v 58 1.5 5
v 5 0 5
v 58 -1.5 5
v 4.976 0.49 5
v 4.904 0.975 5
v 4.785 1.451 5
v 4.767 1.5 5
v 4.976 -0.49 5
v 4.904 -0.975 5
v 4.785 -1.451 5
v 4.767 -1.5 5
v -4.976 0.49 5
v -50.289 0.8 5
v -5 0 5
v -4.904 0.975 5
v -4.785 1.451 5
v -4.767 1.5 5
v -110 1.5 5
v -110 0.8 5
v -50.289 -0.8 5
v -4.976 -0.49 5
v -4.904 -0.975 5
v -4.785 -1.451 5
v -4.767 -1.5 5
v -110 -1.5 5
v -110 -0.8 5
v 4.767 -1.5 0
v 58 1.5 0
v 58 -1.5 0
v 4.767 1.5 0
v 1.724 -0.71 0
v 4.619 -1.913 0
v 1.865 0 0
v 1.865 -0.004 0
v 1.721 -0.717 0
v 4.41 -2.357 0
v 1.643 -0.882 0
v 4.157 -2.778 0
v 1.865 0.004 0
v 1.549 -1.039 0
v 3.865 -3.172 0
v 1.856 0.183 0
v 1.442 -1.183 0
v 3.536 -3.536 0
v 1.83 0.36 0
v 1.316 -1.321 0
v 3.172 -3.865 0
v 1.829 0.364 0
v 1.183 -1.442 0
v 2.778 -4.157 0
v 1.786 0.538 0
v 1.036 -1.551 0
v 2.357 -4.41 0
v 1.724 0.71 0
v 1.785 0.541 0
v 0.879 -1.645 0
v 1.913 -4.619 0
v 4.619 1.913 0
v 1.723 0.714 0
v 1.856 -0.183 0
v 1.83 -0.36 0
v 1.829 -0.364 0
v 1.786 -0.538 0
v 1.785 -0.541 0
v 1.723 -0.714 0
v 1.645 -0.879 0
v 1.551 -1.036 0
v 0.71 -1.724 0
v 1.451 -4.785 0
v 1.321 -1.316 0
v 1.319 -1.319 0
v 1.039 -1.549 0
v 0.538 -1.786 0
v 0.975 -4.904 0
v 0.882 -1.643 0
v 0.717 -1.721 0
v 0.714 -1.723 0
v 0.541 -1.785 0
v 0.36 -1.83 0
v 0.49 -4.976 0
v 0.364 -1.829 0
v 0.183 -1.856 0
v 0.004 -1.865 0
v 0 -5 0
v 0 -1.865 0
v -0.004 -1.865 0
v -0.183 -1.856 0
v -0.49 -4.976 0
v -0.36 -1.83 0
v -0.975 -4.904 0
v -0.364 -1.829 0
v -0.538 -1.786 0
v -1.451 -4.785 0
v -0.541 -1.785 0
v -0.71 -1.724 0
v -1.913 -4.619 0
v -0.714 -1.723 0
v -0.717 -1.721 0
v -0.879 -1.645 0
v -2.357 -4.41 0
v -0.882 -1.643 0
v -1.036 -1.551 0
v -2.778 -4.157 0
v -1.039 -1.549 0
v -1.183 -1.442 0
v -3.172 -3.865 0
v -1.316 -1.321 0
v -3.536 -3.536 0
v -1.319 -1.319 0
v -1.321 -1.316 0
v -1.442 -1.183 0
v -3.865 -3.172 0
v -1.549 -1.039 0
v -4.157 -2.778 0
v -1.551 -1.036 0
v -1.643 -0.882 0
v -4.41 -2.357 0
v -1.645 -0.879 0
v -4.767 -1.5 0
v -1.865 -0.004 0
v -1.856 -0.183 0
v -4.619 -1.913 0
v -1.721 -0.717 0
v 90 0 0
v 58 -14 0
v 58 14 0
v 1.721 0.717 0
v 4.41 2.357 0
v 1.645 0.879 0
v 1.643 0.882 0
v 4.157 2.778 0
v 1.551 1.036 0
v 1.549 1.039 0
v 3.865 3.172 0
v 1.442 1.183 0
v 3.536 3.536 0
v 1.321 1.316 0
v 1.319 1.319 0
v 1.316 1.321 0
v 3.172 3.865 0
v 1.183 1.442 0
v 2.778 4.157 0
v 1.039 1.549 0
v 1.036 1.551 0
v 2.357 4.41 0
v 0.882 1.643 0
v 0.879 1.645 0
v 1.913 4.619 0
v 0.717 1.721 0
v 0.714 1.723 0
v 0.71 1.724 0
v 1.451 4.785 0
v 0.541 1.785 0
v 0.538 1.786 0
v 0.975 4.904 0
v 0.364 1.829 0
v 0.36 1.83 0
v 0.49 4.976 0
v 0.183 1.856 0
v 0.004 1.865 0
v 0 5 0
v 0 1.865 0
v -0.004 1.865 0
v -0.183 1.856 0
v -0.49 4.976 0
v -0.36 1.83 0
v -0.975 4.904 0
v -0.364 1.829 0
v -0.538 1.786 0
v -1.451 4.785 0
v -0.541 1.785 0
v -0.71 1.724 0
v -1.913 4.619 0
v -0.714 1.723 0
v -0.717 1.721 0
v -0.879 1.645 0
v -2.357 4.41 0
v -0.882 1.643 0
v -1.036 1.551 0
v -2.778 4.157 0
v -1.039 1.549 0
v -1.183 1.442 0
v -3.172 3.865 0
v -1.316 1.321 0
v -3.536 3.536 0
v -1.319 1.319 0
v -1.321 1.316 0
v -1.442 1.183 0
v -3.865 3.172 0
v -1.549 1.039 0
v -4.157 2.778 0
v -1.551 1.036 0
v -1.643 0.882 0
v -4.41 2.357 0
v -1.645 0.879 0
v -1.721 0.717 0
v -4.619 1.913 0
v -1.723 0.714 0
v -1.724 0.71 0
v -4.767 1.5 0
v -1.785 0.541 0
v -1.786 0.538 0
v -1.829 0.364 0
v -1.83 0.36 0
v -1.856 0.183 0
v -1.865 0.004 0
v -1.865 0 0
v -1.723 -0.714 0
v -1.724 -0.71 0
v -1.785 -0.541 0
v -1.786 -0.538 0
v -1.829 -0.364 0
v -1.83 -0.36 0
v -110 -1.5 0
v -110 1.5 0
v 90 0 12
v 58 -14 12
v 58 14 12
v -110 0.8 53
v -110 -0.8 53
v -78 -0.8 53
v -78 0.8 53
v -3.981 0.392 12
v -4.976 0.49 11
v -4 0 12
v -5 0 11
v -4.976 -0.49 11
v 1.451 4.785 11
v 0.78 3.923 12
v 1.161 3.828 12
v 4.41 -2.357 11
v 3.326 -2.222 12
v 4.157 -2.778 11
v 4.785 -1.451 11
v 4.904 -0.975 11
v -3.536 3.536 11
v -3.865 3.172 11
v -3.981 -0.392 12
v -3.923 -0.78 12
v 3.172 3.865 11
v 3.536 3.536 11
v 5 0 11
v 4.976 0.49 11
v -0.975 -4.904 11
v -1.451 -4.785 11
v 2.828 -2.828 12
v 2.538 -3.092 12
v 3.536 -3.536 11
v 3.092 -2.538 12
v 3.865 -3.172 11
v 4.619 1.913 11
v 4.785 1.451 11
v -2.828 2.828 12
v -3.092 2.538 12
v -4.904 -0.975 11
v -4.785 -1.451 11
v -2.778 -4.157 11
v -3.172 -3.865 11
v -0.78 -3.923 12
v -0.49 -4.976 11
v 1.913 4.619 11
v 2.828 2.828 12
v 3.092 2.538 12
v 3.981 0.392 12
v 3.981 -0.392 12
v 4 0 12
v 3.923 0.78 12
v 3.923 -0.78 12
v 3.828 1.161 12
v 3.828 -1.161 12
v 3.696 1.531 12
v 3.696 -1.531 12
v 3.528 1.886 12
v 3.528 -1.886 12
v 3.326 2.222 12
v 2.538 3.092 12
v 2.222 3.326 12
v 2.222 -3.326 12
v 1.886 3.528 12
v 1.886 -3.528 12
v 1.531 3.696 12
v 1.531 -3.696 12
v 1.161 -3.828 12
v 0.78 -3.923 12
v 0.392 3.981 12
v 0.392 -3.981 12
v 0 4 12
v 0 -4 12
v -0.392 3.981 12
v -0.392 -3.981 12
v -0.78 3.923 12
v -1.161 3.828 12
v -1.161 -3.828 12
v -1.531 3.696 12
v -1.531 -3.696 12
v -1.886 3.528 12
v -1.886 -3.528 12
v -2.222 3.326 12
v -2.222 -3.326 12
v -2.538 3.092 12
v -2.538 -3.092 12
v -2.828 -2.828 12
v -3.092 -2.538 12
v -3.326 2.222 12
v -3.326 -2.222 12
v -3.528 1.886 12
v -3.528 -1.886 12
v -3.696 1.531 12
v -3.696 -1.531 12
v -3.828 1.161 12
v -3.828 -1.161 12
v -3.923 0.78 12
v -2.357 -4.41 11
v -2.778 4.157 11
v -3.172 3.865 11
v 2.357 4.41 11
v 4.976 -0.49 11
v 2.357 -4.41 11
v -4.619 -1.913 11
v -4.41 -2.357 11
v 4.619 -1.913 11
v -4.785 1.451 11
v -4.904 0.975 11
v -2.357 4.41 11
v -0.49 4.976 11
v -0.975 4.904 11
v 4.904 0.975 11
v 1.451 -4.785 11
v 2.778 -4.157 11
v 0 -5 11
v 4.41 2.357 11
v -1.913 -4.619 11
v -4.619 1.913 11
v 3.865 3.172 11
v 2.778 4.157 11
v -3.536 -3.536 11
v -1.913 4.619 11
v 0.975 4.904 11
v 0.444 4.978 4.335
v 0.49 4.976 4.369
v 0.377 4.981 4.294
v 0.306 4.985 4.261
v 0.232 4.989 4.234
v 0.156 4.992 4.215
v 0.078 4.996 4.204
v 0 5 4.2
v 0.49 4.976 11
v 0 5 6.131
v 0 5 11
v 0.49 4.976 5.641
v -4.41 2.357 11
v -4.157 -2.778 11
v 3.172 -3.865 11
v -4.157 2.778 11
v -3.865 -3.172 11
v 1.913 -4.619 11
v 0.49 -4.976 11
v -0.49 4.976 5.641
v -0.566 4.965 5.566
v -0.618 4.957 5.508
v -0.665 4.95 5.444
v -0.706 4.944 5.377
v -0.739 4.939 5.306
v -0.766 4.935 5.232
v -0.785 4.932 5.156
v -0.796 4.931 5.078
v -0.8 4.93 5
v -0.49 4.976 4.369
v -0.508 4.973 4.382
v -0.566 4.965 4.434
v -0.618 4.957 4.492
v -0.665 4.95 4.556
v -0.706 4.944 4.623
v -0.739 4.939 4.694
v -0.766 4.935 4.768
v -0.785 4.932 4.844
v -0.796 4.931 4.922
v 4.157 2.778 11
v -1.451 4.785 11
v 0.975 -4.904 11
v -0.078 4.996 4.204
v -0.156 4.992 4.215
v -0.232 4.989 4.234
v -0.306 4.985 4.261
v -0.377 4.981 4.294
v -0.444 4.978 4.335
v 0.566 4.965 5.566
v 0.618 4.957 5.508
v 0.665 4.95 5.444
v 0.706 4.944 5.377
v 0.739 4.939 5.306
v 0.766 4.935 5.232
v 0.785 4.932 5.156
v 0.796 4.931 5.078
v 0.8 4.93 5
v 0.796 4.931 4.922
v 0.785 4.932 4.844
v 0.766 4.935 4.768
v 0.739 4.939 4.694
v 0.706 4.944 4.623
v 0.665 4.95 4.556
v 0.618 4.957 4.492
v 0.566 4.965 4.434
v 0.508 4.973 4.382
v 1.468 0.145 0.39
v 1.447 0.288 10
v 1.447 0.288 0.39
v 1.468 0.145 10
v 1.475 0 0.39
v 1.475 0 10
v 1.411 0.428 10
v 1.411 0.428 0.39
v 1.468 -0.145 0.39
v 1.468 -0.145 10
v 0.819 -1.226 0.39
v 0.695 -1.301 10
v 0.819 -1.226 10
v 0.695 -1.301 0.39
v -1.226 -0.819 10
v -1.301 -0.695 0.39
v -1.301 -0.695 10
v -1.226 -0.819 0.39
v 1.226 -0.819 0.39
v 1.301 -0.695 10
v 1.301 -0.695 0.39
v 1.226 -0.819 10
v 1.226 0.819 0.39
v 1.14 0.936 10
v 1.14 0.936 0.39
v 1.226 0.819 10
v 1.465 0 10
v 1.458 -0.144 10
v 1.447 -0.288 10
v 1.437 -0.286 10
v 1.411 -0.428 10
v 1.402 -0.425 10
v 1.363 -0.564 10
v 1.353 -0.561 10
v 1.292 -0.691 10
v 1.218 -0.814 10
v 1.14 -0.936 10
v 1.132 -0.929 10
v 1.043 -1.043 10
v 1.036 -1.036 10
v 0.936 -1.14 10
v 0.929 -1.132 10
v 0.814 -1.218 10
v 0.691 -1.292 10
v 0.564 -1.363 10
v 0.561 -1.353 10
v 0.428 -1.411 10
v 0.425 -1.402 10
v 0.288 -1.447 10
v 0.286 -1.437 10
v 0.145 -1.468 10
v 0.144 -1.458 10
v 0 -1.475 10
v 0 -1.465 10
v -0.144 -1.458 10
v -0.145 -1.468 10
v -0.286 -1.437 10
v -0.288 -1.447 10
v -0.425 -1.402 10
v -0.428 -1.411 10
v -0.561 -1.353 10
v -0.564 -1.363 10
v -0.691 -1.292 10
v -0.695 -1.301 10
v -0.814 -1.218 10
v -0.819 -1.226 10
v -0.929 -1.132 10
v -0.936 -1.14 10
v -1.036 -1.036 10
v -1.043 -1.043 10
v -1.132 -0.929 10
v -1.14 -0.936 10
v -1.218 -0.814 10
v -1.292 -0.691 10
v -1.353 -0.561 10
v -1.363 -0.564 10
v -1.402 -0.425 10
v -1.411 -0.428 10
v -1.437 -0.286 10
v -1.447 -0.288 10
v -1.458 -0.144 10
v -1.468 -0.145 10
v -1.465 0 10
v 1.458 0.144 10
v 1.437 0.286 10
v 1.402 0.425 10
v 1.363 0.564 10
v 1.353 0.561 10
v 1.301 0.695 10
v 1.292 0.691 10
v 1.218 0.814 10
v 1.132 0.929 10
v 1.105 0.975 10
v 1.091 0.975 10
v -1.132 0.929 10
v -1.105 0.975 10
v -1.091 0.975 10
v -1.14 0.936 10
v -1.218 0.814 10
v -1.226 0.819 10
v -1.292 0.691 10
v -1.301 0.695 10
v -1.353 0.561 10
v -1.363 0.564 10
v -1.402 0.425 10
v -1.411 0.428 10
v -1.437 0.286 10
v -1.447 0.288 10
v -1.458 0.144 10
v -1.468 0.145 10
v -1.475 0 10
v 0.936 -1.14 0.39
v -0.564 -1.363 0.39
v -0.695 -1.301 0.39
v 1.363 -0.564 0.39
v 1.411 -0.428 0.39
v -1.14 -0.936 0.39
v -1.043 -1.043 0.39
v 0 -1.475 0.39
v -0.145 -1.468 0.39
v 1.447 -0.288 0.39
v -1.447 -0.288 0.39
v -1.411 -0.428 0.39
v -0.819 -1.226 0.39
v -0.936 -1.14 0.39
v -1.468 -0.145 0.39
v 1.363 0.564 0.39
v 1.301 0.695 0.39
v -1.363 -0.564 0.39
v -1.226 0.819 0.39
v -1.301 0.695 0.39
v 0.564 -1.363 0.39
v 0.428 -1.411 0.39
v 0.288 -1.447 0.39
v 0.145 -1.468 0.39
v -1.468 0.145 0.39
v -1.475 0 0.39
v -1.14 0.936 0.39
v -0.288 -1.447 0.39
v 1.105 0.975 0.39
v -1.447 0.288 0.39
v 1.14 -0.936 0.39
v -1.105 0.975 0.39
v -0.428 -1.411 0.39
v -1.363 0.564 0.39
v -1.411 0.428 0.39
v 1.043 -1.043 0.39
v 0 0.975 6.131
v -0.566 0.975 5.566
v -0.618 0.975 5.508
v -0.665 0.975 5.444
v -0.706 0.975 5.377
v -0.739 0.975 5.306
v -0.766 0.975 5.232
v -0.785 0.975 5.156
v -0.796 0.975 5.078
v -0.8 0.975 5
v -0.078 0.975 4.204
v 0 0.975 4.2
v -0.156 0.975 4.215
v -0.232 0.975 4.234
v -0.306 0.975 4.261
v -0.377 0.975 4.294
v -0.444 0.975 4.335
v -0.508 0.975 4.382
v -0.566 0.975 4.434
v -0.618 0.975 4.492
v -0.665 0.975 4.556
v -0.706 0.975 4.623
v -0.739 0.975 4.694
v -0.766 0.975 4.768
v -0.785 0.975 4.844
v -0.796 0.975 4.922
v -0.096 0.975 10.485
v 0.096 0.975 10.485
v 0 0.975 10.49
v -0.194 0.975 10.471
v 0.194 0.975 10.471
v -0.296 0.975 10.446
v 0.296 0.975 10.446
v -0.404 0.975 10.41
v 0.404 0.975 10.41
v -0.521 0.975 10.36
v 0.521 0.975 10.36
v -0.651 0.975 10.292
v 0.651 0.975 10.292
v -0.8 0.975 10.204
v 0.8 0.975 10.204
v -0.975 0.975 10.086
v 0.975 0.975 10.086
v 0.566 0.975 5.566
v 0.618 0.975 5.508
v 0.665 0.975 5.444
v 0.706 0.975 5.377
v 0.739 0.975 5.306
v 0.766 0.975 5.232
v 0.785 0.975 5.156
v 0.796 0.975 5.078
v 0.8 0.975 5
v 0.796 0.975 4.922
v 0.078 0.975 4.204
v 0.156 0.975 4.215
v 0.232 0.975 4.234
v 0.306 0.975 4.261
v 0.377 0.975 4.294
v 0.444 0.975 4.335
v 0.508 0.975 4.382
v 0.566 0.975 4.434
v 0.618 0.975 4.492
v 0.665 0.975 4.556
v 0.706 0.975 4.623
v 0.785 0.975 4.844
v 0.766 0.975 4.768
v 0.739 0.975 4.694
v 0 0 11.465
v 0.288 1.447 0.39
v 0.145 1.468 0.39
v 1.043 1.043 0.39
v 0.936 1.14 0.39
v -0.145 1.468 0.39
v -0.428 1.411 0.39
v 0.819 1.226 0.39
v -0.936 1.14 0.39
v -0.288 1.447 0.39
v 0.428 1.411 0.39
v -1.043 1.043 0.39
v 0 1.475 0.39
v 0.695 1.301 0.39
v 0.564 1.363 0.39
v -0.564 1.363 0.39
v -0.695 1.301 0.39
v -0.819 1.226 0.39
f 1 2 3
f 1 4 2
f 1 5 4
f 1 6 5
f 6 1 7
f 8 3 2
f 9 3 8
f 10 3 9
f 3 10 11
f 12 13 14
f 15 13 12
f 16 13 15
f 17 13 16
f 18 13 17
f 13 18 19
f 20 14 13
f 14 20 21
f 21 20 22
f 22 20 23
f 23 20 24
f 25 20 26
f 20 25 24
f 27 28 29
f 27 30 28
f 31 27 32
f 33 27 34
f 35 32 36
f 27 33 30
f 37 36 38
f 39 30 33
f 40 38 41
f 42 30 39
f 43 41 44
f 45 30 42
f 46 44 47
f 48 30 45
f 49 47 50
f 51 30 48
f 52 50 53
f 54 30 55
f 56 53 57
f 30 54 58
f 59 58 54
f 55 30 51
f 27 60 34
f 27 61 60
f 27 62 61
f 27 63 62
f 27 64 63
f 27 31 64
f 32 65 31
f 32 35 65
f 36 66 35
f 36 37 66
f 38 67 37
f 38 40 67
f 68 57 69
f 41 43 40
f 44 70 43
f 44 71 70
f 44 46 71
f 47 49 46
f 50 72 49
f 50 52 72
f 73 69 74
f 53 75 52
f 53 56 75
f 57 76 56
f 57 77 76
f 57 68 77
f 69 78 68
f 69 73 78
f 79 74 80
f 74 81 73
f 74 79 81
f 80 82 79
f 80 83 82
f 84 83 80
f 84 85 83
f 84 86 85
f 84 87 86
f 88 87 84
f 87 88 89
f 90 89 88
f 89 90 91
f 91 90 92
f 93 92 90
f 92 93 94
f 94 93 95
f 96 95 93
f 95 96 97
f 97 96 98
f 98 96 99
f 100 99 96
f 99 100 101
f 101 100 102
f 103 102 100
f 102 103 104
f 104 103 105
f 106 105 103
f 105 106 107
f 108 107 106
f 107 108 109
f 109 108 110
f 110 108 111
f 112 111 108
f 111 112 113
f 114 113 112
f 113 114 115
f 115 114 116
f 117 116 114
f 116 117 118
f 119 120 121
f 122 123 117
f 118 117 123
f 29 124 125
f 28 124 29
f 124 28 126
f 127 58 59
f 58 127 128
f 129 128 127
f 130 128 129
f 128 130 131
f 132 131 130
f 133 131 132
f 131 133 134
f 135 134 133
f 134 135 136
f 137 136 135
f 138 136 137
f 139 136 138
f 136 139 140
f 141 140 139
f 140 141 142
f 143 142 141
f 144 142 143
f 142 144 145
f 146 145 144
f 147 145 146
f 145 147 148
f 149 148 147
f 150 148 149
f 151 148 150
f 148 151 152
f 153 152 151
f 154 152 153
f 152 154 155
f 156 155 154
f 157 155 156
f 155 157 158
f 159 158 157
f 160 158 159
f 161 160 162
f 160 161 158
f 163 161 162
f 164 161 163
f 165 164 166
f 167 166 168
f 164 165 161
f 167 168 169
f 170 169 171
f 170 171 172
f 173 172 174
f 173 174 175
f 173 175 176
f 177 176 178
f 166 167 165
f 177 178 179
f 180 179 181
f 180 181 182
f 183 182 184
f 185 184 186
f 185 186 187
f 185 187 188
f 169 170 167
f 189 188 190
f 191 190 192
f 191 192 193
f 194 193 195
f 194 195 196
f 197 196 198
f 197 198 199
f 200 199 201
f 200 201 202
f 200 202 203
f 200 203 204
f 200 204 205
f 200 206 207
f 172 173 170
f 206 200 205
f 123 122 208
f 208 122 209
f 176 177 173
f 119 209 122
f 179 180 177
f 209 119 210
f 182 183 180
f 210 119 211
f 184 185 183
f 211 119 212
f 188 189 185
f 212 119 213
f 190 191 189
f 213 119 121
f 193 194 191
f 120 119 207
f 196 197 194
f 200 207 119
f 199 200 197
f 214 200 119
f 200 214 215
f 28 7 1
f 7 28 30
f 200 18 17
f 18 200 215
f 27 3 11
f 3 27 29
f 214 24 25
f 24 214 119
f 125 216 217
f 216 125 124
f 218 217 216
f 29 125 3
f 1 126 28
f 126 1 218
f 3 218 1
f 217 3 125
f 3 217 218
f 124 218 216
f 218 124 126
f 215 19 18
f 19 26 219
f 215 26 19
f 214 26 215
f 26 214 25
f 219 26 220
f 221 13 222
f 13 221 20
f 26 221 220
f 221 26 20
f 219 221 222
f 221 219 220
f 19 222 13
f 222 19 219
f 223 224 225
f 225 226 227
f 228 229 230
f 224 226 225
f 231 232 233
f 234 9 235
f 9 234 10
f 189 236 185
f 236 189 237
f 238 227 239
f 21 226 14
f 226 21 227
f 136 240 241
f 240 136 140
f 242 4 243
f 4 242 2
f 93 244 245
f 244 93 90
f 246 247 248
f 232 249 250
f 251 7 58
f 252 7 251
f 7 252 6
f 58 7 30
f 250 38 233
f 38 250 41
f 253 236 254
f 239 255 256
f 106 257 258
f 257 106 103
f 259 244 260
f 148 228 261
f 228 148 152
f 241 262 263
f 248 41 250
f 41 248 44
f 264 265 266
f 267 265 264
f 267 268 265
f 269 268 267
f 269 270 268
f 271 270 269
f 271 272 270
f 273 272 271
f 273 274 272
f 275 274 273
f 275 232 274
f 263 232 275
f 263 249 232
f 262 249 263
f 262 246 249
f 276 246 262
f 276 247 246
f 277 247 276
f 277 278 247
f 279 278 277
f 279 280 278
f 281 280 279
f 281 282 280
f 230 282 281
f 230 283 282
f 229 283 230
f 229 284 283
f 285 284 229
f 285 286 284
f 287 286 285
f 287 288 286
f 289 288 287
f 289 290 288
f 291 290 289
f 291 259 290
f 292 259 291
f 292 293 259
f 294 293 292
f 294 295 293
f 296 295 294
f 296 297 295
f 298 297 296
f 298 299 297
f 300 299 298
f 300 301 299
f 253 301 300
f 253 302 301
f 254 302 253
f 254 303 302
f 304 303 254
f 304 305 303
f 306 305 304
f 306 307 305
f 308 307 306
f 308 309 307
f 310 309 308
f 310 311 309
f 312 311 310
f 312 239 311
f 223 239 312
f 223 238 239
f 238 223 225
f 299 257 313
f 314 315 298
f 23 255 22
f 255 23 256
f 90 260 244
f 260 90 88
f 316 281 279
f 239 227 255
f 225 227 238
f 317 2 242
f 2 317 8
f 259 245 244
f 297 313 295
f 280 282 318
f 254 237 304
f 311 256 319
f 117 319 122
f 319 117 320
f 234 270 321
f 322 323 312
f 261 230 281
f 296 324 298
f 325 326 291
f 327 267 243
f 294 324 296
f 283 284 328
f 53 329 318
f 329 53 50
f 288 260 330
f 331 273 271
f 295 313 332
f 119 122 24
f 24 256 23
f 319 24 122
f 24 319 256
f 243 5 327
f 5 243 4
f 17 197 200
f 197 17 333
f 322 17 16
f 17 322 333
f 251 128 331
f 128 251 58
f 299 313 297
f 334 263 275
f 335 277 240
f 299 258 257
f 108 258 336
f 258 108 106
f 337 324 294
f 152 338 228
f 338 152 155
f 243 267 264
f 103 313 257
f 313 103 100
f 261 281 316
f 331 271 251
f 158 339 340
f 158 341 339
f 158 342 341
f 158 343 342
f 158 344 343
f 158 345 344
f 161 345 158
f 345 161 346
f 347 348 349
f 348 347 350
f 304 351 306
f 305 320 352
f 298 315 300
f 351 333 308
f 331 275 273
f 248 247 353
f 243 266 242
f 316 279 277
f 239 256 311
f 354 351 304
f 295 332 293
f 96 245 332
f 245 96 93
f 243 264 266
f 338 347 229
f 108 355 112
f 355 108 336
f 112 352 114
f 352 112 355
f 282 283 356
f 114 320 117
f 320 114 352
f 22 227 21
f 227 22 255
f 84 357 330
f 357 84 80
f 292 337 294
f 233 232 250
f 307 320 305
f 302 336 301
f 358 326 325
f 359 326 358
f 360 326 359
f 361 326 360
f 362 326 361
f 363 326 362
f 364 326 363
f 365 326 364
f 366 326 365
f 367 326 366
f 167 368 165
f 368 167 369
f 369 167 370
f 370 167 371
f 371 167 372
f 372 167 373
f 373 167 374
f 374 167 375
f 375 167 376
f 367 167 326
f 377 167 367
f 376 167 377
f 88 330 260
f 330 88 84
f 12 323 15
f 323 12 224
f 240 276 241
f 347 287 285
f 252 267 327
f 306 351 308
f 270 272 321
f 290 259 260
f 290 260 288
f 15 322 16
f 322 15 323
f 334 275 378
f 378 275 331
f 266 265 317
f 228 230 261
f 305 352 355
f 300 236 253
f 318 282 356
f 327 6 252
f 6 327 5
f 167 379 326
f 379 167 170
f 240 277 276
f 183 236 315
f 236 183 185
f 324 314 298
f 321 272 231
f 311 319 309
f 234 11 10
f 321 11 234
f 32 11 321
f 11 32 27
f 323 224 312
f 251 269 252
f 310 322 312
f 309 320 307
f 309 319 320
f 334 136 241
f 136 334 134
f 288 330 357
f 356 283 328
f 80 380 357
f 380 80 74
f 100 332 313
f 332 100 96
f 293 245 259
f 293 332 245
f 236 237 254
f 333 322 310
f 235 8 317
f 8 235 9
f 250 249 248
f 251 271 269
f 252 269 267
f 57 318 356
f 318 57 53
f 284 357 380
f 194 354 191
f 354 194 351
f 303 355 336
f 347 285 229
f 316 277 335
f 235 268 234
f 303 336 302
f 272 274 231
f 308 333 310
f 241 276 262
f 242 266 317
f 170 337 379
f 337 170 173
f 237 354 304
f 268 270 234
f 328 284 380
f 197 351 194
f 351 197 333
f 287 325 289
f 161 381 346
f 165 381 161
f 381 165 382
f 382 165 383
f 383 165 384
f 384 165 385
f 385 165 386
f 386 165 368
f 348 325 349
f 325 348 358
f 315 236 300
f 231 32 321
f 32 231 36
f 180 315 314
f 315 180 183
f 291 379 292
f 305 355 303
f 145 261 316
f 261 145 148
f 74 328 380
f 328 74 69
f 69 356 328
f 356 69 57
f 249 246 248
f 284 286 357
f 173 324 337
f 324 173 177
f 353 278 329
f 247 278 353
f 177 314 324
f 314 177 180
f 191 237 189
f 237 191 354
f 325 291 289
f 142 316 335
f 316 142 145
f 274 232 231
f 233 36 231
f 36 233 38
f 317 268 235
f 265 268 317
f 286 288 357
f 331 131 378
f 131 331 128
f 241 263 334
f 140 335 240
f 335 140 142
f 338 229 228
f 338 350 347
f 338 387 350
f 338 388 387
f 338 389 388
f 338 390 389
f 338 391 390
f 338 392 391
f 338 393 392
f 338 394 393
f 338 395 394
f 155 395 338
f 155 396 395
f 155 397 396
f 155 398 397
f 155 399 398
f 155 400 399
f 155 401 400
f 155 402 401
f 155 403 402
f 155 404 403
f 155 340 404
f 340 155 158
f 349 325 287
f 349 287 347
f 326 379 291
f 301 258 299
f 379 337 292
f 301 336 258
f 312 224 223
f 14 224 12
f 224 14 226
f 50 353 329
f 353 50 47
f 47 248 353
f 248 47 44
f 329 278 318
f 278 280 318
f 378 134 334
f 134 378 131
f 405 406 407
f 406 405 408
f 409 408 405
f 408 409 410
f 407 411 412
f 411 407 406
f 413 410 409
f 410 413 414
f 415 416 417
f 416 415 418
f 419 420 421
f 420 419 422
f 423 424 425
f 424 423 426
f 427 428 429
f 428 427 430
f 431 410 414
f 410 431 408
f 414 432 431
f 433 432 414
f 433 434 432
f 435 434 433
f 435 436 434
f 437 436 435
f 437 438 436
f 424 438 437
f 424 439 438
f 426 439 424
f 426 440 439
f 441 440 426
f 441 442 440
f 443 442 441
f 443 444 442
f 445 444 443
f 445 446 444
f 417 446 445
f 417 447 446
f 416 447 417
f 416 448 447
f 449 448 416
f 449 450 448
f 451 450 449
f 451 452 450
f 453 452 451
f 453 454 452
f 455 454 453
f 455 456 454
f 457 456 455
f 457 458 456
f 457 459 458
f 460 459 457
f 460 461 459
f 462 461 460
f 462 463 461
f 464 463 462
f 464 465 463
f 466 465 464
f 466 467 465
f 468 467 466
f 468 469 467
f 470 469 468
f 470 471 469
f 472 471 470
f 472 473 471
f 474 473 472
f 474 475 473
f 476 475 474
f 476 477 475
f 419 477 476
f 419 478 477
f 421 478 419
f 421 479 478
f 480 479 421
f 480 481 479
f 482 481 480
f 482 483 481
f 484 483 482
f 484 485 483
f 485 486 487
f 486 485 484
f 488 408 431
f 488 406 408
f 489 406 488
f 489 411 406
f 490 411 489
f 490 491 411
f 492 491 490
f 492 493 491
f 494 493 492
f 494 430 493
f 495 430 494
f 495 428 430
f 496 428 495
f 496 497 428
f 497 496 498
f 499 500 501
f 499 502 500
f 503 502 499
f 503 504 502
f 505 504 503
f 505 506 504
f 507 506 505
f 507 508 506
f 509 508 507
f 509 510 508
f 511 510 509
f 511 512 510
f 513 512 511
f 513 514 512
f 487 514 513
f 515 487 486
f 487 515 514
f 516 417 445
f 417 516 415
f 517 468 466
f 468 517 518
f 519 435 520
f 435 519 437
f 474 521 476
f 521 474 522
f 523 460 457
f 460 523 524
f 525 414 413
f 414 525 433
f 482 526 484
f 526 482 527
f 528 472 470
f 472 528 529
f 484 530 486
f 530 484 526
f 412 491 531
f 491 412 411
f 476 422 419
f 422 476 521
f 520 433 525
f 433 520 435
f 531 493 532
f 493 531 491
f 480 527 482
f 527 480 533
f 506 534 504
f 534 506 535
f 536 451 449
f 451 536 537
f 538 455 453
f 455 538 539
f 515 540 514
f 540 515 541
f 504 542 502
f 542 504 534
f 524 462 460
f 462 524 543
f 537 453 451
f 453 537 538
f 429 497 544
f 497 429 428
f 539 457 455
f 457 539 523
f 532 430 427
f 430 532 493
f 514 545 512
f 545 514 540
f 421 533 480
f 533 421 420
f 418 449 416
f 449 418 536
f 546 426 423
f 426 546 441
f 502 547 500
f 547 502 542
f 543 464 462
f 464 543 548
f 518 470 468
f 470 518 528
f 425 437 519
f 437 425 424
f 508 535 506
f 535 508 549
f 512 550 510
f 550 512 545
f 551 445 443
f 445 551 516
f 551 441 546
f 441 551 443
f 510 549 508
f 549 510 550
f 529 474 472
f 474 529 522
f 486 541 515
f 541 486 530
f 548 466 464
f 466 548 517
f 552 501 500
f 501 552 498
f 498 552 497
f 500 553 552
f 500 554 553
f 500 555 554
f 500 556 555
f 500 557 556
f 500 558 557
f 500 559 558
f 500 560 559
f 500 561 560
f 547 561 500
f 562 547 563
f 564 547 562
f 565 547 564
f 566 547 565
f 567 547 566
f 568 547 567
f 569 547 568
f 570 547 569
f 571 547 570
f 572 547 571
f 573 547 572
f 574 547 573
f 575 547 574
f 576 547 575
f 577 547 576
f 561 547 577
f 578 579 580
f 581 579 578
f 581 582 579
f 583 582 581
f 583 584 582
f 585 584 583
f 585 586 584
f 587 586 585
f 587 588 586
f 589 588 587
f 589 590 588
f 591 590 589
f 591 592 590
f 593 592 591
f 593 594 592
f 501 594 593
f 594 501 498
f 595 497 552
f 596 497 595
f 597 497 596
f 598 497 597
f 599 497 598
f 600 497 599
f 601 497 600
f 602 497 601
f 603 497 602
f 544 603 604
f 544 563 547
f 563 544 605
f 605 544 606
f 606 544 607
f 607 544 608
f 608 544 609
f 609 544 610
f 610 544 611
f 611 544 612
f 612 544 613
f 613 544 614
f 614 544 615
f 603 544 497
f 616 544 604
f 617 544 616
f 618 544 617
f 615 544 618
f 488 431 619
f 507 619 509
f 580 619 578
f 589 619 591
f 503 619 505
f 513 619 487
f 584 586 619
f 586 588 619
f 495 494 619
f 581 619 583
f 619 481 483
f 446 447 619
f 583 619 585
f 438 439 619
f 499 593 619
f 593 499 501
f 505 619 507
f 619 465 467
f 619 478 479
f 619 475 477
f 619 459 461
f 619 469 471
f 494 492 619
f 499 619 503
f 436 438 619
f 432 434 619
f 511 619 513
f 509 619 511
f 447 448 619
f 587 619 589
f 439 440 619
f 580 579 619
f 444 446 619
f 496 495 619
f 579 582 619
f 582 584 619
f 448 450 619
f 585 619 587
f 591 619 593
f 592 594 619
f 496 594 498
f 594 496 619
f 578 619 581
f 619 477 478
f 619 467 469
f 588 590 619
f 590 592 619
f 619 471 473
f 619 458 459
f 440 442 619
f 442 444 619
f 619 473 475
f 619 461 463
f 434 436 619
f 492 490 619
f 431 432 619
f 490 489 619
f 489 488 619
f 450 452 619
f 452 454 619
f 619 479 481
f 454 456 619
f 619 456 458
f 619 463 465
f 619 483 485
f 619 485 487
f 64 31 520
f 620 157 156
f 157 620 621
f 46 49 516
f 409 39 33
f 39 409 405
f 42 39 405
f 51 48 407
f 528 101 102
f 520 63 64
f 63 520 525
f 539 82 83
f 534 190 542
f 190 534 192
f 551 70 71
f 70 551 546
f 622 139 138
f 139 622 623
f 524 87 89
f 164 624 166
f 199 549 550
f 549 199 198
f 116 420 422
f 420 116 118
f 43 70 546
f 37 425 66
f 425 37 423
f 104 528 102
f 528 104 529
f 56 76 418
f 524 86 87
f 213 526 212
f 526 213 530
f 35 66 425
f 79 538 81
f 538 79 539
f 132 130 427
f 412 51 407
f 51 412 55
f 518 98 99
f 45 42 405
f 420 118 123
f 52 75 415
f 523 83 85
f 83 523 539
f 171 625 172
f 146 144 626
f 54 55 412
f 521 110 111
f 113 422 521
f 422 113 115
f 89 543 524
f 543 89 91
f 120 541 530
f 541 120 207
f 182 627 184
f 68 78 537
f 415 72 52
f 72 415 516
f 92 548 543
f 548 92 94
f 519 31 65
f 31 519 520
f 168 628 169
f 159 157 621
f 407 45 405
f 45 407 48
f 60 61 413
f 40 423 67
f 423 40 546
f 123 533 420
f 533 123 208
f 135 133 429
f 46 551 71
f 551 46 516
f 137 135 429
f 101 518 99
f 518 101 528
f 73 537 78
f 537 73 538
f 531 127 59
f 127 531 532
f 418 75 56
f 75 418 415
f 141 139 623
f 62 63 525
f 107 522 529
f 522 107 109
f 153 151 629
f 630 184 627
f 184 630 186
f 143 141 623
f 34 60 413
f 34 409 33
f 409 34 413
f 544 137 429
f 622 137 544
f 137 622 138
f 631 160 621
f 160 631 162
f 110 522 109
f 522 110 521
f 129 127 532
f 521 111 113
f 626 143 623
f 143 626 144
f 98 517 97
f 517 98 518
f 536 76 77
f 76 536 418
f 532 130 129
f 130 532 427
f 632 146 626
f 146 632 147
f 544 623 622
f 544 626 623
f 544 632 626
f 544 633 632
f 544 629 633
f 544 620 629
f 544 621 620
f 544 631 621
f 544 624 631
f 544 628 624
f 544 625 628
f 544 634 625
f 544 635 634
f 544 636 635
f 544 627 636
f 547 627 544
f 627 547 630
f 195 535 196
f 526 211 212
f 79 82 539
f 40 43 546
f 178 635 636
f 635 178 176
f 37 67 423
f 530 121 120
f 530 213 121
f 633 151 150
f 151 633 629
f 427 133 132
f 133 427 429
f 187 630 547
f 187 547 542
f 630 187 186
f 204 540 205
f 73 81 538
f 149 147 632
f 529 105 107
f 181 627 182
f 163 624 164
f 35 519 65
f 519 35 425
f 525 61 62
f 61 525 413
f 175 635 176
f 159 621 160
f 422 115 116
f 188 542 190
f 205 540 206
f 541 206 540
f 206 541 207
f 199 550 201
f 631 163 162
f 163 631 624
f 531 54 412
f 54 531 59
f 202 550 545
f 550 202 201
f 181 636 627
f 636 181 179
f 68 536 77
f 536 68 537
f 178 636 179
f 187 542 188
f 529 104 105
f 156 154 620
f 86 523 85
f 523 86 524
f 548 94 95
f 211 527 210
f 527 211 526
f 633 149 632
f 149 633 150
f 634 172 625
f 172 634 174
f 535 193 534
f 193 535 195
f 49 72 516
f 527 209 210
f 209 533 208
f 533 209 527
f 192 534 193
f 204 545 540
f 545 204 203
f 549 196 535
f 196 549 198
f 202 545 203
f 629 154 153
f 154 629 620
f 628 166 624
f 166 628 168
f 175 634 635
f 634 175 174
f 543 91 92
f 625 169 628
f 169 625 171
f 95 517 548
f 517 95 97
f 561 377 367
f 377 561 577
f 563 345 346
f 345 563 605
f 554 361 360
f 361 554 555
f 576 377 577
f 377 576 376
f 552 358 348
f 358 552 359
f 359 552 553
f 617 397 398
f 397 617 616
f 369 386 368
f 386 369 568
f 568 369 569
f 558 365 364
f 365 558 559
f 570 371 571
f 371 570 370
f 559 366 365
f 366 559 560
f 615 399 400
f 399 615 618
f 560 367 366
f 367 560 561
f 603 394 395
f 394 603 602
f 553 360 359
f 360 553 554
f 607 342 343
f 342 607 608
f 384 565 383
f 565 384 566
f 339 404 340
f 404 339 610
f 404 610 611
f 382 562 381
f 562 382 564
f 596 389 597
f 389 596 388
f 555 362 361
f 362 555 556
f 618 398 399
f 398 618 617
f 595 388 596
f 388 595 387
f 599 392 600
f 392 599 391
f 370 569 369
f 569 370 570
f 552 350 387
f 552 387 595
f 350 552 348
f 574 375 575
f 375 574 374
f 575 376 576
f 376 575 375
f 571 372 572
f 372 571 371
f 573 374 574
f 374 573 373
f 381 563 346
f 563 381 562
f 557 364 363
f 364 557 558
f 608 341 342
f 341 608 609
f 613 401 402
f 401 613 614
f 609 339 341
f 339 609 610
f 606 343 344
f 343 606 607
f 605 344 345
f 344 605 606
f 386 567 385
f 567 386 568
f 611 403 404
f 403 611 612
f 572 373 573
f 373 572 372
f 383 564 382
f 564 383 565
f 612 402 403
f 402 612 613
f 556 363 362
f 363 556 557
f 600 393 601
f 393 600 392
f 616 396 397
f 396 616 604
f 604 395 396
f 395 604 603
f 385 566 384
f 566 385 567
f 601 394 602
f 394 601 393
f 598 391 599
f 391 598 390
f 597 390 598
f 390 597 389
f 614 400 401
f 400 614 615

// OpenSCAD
// =====================================================================
//  Replacement wind-direction vane for VEVOR YT60231 weather station
//  Parametric OpenSCAD model.  Units: mm.
//
//  Coordinate system (= print orientation = installed orientation):
//    Z  = shaft axis (up).  Bottom face (z=0) sits flat on the print bed.
//    +X = pointer / arrow head (points INTO the wind).
//    -X = tail boom + tail fin.
//  The shaft enters from the bottom; the bore is blind (capped on top)
//  so rain can't run down onto the shaft/bearing.
//  Prints with NO supports: hub upright, arms flat on the bed, fin is a
//  vertical wall standing on the tail boom, set-screw hole is a teardrop.
// =====================================================================

/* [Shaft & bore] */
shaft_d        = 2.8;   // measured shaft diameter
flat_depth     = 0.5;   // depth of the D-flat. across-flat = shaft_d - flat_depth (default 2.3). MEASURE IT!
bore_clearance = 0.15;  // added to diameter AND across-flat (0.10 = snug/ream, 0.20 = loose)
bore_depth     = 10;    // shaft engagement depth
blind_bore     = true;  // true = closed top cap (recommended), false = through bore
bore_chamfer   = 0.4;   // lead-in chamfer at the bore entrance (also kills elephant foot)

/* [Hub] */
hub_d          = 10;    // hub outer diameter
hub_h          = 12;    // hub height (cap thickness = hub_h - bore_depth when blind)
hub_top_chamfer= 1.0;

/* [Set screw] */
screw_size     = "M2";  // "M2" or "M2.5"
// Angle of the set screw (and of the shaft flat it presses on), measured
// CCW from the pointer (+X). 90 = screw on the side of the hub, clear of the arms.
// The flat is always centred under the screw.  Change this if the original
// vane's pointer was oriented differently relative to the flat (calibration!).
screw_angle    = 90;
screw_z        = 5;     // height of screw axis; default = mid engagement (bore_depth/2)
nut_trap       = false; // true = add a top-loading hex pocket for an M2 / M2.5 nut
nut_clear      = 0.3;   // extra clearance for the nut pocket

/* [Arms] */
arm_w          = 3.0;   // arm width (horizontal)  - keep <= 3.6 so it slices solid
arm_h          = 5.0;   // arm height (vertical)
pointer_len    = 58;    // hub axis -> start of arrow head
nose_l         = 32;    // arrow-head length (tip at pointer_len + nose_l)
nose_w         = 28;    // arrow-head base width
nose_h         = 12.0;  // arrow-head height = COUNTERWEIGHT TUNING PARAMETER (balance)

/* [Tail fin] */
fin_x0         = 50;    // hub axis -> fin leading edge (at root)
fin_root       = 60;    // fin chord at the root (on the boom)
fin_tip        = 32;    // fin chord at the top (swept leading edge)
fin_h          = 48;    // fin height above the boom
fin_t          = 1.6;   // fin thickness

$fn = 64;
eps = 0.01;

// ---------------------------------------------------------------------
tap_d   = (screw_size == "M2.5") ? 2.05 : 1.6;   // tap drill for self-tapping in plastic
nut_af  = (screw_size == "M2.5") ? 5.0  : 4.0;   // nut across flats
nut_t   = (screw_size == "M2.5") ? 2.0  : 1.6;   // nut thickness
bore_r  = (shaft_d + bore_clearance) / 2;
flat_y  = (shaft_d - flat_depth) - shaft_d/2 + bore_clearance/2; // flat plane offset from axis
tail_end = fin_x0 + fin_root;

// Horizontal hole along +Y with a 45-degree teardrop point toward +Z
module teardrop_y(d, len) {
    rotate([90,0,0]) translate([0,0,-len]) linear_extrude(len)
        union() {
            circle(d = d);
            rotate(45) square(d/2);
        }
}

// D-shaped bore (flat facing +Y before rotation)
module d_bore() {
    top = blind_bore ? bore_depth : hub_h + 1;
    intersection() {
        translate([0,0,-1]) cylinder(r = bore_r, h = top + 1);
        translate([-5, -5, -2]) cube([10, 5 + flat_y, top + 3]);
    }
    // conical (drill-point) roof: prints without a bridge
    if (blind_bore)
        intersection() {
            translate([0,0,bore_depth - eps]) cylinder(r1 = bore_r, r2 = 0, h = bore_r);
            translate([-5, -5, 0]) cube([10, 5 + flat_y, 30]);
        }
    // entrance chamfer
    translate([0,0,-eps]) cylinder(r1 = bore_r + bore_chamfer, r2 = bore_r, h = bore_chamfer);
}

module screw_features() {
    // radial tap-drill hole, from just inside the flat out through the hub wall
    translate([0, flat_y - 0.5, screw_z]) teardrop_y(tap_d, hub_d);
    if (nut_trap) {
        ny = flat_y + 0.6;                       // inner face of the nut pocket
        R  = (nut_af + nut_clear) / sqrt(3);     // hex circumradius
        translate([0, ny, 0]) rotate([90,0,0]) translate([0,0,-(nut_t + nut_clear)])
            linear_extrude(nut_t + nut_clear)
                hull() {
                    translate([0, screw_z]) rotate(90) circle(r = R, $fn = 6);
                    translate([0, hub_h + 2]) rotate(90) circle(r = R, $fn = 6);
                }
    }
}

module hub() {
    rotate_extrude() polygon([
        [0,0], [hub_d/2, 0], [hub_d/2, hub_h - hub_top_chamfer],
        [hub_d/2 - hub_top_chamfer, hub_h], [0, hub_h]]);
}

module pointer_arm() {
    translate([0, -arm_w/2, 0]) cube([pointer_len + 1, arm_w, arm_h]);
    // arrow head = nose counterweight: plan-view triangle prism.
    // nose_h is tuned so the centre of mass sits on the shaft axis (see README).
    translate([pointer_len, 0, 0]) linear_extrude(nose_h)
        polygon([[0, -nose_w/2], [nose_l, 0], [0, nose_w/2]]);
}

module tail() {
    translate([-tail_end, -arm_w/2, 0]) cube([tail_end, arm_w, arm_h]);
    // fin: vertical plate standing on the boom, swept leading edge
    translate([0, fin_t/2, 0]) rotate([90,0,0]) linear_extrude(fin_t)
        polygon([
            [-fin_x0,              arm_h - 0.5],
            [-tail_end,            arm_h - 0.5],
            [-tail_end,            arm_h + fin_h],
            [-tail_end + fin_tip,  arm_h + fin_h]]);
}

module wind_vane() {
    difference() {
        union() { hub(); pointer_arm(); tail(); }
        rotate(screw_angle - 90) { d_bore(); screw_features(); }
    }
}

wind_vane();
